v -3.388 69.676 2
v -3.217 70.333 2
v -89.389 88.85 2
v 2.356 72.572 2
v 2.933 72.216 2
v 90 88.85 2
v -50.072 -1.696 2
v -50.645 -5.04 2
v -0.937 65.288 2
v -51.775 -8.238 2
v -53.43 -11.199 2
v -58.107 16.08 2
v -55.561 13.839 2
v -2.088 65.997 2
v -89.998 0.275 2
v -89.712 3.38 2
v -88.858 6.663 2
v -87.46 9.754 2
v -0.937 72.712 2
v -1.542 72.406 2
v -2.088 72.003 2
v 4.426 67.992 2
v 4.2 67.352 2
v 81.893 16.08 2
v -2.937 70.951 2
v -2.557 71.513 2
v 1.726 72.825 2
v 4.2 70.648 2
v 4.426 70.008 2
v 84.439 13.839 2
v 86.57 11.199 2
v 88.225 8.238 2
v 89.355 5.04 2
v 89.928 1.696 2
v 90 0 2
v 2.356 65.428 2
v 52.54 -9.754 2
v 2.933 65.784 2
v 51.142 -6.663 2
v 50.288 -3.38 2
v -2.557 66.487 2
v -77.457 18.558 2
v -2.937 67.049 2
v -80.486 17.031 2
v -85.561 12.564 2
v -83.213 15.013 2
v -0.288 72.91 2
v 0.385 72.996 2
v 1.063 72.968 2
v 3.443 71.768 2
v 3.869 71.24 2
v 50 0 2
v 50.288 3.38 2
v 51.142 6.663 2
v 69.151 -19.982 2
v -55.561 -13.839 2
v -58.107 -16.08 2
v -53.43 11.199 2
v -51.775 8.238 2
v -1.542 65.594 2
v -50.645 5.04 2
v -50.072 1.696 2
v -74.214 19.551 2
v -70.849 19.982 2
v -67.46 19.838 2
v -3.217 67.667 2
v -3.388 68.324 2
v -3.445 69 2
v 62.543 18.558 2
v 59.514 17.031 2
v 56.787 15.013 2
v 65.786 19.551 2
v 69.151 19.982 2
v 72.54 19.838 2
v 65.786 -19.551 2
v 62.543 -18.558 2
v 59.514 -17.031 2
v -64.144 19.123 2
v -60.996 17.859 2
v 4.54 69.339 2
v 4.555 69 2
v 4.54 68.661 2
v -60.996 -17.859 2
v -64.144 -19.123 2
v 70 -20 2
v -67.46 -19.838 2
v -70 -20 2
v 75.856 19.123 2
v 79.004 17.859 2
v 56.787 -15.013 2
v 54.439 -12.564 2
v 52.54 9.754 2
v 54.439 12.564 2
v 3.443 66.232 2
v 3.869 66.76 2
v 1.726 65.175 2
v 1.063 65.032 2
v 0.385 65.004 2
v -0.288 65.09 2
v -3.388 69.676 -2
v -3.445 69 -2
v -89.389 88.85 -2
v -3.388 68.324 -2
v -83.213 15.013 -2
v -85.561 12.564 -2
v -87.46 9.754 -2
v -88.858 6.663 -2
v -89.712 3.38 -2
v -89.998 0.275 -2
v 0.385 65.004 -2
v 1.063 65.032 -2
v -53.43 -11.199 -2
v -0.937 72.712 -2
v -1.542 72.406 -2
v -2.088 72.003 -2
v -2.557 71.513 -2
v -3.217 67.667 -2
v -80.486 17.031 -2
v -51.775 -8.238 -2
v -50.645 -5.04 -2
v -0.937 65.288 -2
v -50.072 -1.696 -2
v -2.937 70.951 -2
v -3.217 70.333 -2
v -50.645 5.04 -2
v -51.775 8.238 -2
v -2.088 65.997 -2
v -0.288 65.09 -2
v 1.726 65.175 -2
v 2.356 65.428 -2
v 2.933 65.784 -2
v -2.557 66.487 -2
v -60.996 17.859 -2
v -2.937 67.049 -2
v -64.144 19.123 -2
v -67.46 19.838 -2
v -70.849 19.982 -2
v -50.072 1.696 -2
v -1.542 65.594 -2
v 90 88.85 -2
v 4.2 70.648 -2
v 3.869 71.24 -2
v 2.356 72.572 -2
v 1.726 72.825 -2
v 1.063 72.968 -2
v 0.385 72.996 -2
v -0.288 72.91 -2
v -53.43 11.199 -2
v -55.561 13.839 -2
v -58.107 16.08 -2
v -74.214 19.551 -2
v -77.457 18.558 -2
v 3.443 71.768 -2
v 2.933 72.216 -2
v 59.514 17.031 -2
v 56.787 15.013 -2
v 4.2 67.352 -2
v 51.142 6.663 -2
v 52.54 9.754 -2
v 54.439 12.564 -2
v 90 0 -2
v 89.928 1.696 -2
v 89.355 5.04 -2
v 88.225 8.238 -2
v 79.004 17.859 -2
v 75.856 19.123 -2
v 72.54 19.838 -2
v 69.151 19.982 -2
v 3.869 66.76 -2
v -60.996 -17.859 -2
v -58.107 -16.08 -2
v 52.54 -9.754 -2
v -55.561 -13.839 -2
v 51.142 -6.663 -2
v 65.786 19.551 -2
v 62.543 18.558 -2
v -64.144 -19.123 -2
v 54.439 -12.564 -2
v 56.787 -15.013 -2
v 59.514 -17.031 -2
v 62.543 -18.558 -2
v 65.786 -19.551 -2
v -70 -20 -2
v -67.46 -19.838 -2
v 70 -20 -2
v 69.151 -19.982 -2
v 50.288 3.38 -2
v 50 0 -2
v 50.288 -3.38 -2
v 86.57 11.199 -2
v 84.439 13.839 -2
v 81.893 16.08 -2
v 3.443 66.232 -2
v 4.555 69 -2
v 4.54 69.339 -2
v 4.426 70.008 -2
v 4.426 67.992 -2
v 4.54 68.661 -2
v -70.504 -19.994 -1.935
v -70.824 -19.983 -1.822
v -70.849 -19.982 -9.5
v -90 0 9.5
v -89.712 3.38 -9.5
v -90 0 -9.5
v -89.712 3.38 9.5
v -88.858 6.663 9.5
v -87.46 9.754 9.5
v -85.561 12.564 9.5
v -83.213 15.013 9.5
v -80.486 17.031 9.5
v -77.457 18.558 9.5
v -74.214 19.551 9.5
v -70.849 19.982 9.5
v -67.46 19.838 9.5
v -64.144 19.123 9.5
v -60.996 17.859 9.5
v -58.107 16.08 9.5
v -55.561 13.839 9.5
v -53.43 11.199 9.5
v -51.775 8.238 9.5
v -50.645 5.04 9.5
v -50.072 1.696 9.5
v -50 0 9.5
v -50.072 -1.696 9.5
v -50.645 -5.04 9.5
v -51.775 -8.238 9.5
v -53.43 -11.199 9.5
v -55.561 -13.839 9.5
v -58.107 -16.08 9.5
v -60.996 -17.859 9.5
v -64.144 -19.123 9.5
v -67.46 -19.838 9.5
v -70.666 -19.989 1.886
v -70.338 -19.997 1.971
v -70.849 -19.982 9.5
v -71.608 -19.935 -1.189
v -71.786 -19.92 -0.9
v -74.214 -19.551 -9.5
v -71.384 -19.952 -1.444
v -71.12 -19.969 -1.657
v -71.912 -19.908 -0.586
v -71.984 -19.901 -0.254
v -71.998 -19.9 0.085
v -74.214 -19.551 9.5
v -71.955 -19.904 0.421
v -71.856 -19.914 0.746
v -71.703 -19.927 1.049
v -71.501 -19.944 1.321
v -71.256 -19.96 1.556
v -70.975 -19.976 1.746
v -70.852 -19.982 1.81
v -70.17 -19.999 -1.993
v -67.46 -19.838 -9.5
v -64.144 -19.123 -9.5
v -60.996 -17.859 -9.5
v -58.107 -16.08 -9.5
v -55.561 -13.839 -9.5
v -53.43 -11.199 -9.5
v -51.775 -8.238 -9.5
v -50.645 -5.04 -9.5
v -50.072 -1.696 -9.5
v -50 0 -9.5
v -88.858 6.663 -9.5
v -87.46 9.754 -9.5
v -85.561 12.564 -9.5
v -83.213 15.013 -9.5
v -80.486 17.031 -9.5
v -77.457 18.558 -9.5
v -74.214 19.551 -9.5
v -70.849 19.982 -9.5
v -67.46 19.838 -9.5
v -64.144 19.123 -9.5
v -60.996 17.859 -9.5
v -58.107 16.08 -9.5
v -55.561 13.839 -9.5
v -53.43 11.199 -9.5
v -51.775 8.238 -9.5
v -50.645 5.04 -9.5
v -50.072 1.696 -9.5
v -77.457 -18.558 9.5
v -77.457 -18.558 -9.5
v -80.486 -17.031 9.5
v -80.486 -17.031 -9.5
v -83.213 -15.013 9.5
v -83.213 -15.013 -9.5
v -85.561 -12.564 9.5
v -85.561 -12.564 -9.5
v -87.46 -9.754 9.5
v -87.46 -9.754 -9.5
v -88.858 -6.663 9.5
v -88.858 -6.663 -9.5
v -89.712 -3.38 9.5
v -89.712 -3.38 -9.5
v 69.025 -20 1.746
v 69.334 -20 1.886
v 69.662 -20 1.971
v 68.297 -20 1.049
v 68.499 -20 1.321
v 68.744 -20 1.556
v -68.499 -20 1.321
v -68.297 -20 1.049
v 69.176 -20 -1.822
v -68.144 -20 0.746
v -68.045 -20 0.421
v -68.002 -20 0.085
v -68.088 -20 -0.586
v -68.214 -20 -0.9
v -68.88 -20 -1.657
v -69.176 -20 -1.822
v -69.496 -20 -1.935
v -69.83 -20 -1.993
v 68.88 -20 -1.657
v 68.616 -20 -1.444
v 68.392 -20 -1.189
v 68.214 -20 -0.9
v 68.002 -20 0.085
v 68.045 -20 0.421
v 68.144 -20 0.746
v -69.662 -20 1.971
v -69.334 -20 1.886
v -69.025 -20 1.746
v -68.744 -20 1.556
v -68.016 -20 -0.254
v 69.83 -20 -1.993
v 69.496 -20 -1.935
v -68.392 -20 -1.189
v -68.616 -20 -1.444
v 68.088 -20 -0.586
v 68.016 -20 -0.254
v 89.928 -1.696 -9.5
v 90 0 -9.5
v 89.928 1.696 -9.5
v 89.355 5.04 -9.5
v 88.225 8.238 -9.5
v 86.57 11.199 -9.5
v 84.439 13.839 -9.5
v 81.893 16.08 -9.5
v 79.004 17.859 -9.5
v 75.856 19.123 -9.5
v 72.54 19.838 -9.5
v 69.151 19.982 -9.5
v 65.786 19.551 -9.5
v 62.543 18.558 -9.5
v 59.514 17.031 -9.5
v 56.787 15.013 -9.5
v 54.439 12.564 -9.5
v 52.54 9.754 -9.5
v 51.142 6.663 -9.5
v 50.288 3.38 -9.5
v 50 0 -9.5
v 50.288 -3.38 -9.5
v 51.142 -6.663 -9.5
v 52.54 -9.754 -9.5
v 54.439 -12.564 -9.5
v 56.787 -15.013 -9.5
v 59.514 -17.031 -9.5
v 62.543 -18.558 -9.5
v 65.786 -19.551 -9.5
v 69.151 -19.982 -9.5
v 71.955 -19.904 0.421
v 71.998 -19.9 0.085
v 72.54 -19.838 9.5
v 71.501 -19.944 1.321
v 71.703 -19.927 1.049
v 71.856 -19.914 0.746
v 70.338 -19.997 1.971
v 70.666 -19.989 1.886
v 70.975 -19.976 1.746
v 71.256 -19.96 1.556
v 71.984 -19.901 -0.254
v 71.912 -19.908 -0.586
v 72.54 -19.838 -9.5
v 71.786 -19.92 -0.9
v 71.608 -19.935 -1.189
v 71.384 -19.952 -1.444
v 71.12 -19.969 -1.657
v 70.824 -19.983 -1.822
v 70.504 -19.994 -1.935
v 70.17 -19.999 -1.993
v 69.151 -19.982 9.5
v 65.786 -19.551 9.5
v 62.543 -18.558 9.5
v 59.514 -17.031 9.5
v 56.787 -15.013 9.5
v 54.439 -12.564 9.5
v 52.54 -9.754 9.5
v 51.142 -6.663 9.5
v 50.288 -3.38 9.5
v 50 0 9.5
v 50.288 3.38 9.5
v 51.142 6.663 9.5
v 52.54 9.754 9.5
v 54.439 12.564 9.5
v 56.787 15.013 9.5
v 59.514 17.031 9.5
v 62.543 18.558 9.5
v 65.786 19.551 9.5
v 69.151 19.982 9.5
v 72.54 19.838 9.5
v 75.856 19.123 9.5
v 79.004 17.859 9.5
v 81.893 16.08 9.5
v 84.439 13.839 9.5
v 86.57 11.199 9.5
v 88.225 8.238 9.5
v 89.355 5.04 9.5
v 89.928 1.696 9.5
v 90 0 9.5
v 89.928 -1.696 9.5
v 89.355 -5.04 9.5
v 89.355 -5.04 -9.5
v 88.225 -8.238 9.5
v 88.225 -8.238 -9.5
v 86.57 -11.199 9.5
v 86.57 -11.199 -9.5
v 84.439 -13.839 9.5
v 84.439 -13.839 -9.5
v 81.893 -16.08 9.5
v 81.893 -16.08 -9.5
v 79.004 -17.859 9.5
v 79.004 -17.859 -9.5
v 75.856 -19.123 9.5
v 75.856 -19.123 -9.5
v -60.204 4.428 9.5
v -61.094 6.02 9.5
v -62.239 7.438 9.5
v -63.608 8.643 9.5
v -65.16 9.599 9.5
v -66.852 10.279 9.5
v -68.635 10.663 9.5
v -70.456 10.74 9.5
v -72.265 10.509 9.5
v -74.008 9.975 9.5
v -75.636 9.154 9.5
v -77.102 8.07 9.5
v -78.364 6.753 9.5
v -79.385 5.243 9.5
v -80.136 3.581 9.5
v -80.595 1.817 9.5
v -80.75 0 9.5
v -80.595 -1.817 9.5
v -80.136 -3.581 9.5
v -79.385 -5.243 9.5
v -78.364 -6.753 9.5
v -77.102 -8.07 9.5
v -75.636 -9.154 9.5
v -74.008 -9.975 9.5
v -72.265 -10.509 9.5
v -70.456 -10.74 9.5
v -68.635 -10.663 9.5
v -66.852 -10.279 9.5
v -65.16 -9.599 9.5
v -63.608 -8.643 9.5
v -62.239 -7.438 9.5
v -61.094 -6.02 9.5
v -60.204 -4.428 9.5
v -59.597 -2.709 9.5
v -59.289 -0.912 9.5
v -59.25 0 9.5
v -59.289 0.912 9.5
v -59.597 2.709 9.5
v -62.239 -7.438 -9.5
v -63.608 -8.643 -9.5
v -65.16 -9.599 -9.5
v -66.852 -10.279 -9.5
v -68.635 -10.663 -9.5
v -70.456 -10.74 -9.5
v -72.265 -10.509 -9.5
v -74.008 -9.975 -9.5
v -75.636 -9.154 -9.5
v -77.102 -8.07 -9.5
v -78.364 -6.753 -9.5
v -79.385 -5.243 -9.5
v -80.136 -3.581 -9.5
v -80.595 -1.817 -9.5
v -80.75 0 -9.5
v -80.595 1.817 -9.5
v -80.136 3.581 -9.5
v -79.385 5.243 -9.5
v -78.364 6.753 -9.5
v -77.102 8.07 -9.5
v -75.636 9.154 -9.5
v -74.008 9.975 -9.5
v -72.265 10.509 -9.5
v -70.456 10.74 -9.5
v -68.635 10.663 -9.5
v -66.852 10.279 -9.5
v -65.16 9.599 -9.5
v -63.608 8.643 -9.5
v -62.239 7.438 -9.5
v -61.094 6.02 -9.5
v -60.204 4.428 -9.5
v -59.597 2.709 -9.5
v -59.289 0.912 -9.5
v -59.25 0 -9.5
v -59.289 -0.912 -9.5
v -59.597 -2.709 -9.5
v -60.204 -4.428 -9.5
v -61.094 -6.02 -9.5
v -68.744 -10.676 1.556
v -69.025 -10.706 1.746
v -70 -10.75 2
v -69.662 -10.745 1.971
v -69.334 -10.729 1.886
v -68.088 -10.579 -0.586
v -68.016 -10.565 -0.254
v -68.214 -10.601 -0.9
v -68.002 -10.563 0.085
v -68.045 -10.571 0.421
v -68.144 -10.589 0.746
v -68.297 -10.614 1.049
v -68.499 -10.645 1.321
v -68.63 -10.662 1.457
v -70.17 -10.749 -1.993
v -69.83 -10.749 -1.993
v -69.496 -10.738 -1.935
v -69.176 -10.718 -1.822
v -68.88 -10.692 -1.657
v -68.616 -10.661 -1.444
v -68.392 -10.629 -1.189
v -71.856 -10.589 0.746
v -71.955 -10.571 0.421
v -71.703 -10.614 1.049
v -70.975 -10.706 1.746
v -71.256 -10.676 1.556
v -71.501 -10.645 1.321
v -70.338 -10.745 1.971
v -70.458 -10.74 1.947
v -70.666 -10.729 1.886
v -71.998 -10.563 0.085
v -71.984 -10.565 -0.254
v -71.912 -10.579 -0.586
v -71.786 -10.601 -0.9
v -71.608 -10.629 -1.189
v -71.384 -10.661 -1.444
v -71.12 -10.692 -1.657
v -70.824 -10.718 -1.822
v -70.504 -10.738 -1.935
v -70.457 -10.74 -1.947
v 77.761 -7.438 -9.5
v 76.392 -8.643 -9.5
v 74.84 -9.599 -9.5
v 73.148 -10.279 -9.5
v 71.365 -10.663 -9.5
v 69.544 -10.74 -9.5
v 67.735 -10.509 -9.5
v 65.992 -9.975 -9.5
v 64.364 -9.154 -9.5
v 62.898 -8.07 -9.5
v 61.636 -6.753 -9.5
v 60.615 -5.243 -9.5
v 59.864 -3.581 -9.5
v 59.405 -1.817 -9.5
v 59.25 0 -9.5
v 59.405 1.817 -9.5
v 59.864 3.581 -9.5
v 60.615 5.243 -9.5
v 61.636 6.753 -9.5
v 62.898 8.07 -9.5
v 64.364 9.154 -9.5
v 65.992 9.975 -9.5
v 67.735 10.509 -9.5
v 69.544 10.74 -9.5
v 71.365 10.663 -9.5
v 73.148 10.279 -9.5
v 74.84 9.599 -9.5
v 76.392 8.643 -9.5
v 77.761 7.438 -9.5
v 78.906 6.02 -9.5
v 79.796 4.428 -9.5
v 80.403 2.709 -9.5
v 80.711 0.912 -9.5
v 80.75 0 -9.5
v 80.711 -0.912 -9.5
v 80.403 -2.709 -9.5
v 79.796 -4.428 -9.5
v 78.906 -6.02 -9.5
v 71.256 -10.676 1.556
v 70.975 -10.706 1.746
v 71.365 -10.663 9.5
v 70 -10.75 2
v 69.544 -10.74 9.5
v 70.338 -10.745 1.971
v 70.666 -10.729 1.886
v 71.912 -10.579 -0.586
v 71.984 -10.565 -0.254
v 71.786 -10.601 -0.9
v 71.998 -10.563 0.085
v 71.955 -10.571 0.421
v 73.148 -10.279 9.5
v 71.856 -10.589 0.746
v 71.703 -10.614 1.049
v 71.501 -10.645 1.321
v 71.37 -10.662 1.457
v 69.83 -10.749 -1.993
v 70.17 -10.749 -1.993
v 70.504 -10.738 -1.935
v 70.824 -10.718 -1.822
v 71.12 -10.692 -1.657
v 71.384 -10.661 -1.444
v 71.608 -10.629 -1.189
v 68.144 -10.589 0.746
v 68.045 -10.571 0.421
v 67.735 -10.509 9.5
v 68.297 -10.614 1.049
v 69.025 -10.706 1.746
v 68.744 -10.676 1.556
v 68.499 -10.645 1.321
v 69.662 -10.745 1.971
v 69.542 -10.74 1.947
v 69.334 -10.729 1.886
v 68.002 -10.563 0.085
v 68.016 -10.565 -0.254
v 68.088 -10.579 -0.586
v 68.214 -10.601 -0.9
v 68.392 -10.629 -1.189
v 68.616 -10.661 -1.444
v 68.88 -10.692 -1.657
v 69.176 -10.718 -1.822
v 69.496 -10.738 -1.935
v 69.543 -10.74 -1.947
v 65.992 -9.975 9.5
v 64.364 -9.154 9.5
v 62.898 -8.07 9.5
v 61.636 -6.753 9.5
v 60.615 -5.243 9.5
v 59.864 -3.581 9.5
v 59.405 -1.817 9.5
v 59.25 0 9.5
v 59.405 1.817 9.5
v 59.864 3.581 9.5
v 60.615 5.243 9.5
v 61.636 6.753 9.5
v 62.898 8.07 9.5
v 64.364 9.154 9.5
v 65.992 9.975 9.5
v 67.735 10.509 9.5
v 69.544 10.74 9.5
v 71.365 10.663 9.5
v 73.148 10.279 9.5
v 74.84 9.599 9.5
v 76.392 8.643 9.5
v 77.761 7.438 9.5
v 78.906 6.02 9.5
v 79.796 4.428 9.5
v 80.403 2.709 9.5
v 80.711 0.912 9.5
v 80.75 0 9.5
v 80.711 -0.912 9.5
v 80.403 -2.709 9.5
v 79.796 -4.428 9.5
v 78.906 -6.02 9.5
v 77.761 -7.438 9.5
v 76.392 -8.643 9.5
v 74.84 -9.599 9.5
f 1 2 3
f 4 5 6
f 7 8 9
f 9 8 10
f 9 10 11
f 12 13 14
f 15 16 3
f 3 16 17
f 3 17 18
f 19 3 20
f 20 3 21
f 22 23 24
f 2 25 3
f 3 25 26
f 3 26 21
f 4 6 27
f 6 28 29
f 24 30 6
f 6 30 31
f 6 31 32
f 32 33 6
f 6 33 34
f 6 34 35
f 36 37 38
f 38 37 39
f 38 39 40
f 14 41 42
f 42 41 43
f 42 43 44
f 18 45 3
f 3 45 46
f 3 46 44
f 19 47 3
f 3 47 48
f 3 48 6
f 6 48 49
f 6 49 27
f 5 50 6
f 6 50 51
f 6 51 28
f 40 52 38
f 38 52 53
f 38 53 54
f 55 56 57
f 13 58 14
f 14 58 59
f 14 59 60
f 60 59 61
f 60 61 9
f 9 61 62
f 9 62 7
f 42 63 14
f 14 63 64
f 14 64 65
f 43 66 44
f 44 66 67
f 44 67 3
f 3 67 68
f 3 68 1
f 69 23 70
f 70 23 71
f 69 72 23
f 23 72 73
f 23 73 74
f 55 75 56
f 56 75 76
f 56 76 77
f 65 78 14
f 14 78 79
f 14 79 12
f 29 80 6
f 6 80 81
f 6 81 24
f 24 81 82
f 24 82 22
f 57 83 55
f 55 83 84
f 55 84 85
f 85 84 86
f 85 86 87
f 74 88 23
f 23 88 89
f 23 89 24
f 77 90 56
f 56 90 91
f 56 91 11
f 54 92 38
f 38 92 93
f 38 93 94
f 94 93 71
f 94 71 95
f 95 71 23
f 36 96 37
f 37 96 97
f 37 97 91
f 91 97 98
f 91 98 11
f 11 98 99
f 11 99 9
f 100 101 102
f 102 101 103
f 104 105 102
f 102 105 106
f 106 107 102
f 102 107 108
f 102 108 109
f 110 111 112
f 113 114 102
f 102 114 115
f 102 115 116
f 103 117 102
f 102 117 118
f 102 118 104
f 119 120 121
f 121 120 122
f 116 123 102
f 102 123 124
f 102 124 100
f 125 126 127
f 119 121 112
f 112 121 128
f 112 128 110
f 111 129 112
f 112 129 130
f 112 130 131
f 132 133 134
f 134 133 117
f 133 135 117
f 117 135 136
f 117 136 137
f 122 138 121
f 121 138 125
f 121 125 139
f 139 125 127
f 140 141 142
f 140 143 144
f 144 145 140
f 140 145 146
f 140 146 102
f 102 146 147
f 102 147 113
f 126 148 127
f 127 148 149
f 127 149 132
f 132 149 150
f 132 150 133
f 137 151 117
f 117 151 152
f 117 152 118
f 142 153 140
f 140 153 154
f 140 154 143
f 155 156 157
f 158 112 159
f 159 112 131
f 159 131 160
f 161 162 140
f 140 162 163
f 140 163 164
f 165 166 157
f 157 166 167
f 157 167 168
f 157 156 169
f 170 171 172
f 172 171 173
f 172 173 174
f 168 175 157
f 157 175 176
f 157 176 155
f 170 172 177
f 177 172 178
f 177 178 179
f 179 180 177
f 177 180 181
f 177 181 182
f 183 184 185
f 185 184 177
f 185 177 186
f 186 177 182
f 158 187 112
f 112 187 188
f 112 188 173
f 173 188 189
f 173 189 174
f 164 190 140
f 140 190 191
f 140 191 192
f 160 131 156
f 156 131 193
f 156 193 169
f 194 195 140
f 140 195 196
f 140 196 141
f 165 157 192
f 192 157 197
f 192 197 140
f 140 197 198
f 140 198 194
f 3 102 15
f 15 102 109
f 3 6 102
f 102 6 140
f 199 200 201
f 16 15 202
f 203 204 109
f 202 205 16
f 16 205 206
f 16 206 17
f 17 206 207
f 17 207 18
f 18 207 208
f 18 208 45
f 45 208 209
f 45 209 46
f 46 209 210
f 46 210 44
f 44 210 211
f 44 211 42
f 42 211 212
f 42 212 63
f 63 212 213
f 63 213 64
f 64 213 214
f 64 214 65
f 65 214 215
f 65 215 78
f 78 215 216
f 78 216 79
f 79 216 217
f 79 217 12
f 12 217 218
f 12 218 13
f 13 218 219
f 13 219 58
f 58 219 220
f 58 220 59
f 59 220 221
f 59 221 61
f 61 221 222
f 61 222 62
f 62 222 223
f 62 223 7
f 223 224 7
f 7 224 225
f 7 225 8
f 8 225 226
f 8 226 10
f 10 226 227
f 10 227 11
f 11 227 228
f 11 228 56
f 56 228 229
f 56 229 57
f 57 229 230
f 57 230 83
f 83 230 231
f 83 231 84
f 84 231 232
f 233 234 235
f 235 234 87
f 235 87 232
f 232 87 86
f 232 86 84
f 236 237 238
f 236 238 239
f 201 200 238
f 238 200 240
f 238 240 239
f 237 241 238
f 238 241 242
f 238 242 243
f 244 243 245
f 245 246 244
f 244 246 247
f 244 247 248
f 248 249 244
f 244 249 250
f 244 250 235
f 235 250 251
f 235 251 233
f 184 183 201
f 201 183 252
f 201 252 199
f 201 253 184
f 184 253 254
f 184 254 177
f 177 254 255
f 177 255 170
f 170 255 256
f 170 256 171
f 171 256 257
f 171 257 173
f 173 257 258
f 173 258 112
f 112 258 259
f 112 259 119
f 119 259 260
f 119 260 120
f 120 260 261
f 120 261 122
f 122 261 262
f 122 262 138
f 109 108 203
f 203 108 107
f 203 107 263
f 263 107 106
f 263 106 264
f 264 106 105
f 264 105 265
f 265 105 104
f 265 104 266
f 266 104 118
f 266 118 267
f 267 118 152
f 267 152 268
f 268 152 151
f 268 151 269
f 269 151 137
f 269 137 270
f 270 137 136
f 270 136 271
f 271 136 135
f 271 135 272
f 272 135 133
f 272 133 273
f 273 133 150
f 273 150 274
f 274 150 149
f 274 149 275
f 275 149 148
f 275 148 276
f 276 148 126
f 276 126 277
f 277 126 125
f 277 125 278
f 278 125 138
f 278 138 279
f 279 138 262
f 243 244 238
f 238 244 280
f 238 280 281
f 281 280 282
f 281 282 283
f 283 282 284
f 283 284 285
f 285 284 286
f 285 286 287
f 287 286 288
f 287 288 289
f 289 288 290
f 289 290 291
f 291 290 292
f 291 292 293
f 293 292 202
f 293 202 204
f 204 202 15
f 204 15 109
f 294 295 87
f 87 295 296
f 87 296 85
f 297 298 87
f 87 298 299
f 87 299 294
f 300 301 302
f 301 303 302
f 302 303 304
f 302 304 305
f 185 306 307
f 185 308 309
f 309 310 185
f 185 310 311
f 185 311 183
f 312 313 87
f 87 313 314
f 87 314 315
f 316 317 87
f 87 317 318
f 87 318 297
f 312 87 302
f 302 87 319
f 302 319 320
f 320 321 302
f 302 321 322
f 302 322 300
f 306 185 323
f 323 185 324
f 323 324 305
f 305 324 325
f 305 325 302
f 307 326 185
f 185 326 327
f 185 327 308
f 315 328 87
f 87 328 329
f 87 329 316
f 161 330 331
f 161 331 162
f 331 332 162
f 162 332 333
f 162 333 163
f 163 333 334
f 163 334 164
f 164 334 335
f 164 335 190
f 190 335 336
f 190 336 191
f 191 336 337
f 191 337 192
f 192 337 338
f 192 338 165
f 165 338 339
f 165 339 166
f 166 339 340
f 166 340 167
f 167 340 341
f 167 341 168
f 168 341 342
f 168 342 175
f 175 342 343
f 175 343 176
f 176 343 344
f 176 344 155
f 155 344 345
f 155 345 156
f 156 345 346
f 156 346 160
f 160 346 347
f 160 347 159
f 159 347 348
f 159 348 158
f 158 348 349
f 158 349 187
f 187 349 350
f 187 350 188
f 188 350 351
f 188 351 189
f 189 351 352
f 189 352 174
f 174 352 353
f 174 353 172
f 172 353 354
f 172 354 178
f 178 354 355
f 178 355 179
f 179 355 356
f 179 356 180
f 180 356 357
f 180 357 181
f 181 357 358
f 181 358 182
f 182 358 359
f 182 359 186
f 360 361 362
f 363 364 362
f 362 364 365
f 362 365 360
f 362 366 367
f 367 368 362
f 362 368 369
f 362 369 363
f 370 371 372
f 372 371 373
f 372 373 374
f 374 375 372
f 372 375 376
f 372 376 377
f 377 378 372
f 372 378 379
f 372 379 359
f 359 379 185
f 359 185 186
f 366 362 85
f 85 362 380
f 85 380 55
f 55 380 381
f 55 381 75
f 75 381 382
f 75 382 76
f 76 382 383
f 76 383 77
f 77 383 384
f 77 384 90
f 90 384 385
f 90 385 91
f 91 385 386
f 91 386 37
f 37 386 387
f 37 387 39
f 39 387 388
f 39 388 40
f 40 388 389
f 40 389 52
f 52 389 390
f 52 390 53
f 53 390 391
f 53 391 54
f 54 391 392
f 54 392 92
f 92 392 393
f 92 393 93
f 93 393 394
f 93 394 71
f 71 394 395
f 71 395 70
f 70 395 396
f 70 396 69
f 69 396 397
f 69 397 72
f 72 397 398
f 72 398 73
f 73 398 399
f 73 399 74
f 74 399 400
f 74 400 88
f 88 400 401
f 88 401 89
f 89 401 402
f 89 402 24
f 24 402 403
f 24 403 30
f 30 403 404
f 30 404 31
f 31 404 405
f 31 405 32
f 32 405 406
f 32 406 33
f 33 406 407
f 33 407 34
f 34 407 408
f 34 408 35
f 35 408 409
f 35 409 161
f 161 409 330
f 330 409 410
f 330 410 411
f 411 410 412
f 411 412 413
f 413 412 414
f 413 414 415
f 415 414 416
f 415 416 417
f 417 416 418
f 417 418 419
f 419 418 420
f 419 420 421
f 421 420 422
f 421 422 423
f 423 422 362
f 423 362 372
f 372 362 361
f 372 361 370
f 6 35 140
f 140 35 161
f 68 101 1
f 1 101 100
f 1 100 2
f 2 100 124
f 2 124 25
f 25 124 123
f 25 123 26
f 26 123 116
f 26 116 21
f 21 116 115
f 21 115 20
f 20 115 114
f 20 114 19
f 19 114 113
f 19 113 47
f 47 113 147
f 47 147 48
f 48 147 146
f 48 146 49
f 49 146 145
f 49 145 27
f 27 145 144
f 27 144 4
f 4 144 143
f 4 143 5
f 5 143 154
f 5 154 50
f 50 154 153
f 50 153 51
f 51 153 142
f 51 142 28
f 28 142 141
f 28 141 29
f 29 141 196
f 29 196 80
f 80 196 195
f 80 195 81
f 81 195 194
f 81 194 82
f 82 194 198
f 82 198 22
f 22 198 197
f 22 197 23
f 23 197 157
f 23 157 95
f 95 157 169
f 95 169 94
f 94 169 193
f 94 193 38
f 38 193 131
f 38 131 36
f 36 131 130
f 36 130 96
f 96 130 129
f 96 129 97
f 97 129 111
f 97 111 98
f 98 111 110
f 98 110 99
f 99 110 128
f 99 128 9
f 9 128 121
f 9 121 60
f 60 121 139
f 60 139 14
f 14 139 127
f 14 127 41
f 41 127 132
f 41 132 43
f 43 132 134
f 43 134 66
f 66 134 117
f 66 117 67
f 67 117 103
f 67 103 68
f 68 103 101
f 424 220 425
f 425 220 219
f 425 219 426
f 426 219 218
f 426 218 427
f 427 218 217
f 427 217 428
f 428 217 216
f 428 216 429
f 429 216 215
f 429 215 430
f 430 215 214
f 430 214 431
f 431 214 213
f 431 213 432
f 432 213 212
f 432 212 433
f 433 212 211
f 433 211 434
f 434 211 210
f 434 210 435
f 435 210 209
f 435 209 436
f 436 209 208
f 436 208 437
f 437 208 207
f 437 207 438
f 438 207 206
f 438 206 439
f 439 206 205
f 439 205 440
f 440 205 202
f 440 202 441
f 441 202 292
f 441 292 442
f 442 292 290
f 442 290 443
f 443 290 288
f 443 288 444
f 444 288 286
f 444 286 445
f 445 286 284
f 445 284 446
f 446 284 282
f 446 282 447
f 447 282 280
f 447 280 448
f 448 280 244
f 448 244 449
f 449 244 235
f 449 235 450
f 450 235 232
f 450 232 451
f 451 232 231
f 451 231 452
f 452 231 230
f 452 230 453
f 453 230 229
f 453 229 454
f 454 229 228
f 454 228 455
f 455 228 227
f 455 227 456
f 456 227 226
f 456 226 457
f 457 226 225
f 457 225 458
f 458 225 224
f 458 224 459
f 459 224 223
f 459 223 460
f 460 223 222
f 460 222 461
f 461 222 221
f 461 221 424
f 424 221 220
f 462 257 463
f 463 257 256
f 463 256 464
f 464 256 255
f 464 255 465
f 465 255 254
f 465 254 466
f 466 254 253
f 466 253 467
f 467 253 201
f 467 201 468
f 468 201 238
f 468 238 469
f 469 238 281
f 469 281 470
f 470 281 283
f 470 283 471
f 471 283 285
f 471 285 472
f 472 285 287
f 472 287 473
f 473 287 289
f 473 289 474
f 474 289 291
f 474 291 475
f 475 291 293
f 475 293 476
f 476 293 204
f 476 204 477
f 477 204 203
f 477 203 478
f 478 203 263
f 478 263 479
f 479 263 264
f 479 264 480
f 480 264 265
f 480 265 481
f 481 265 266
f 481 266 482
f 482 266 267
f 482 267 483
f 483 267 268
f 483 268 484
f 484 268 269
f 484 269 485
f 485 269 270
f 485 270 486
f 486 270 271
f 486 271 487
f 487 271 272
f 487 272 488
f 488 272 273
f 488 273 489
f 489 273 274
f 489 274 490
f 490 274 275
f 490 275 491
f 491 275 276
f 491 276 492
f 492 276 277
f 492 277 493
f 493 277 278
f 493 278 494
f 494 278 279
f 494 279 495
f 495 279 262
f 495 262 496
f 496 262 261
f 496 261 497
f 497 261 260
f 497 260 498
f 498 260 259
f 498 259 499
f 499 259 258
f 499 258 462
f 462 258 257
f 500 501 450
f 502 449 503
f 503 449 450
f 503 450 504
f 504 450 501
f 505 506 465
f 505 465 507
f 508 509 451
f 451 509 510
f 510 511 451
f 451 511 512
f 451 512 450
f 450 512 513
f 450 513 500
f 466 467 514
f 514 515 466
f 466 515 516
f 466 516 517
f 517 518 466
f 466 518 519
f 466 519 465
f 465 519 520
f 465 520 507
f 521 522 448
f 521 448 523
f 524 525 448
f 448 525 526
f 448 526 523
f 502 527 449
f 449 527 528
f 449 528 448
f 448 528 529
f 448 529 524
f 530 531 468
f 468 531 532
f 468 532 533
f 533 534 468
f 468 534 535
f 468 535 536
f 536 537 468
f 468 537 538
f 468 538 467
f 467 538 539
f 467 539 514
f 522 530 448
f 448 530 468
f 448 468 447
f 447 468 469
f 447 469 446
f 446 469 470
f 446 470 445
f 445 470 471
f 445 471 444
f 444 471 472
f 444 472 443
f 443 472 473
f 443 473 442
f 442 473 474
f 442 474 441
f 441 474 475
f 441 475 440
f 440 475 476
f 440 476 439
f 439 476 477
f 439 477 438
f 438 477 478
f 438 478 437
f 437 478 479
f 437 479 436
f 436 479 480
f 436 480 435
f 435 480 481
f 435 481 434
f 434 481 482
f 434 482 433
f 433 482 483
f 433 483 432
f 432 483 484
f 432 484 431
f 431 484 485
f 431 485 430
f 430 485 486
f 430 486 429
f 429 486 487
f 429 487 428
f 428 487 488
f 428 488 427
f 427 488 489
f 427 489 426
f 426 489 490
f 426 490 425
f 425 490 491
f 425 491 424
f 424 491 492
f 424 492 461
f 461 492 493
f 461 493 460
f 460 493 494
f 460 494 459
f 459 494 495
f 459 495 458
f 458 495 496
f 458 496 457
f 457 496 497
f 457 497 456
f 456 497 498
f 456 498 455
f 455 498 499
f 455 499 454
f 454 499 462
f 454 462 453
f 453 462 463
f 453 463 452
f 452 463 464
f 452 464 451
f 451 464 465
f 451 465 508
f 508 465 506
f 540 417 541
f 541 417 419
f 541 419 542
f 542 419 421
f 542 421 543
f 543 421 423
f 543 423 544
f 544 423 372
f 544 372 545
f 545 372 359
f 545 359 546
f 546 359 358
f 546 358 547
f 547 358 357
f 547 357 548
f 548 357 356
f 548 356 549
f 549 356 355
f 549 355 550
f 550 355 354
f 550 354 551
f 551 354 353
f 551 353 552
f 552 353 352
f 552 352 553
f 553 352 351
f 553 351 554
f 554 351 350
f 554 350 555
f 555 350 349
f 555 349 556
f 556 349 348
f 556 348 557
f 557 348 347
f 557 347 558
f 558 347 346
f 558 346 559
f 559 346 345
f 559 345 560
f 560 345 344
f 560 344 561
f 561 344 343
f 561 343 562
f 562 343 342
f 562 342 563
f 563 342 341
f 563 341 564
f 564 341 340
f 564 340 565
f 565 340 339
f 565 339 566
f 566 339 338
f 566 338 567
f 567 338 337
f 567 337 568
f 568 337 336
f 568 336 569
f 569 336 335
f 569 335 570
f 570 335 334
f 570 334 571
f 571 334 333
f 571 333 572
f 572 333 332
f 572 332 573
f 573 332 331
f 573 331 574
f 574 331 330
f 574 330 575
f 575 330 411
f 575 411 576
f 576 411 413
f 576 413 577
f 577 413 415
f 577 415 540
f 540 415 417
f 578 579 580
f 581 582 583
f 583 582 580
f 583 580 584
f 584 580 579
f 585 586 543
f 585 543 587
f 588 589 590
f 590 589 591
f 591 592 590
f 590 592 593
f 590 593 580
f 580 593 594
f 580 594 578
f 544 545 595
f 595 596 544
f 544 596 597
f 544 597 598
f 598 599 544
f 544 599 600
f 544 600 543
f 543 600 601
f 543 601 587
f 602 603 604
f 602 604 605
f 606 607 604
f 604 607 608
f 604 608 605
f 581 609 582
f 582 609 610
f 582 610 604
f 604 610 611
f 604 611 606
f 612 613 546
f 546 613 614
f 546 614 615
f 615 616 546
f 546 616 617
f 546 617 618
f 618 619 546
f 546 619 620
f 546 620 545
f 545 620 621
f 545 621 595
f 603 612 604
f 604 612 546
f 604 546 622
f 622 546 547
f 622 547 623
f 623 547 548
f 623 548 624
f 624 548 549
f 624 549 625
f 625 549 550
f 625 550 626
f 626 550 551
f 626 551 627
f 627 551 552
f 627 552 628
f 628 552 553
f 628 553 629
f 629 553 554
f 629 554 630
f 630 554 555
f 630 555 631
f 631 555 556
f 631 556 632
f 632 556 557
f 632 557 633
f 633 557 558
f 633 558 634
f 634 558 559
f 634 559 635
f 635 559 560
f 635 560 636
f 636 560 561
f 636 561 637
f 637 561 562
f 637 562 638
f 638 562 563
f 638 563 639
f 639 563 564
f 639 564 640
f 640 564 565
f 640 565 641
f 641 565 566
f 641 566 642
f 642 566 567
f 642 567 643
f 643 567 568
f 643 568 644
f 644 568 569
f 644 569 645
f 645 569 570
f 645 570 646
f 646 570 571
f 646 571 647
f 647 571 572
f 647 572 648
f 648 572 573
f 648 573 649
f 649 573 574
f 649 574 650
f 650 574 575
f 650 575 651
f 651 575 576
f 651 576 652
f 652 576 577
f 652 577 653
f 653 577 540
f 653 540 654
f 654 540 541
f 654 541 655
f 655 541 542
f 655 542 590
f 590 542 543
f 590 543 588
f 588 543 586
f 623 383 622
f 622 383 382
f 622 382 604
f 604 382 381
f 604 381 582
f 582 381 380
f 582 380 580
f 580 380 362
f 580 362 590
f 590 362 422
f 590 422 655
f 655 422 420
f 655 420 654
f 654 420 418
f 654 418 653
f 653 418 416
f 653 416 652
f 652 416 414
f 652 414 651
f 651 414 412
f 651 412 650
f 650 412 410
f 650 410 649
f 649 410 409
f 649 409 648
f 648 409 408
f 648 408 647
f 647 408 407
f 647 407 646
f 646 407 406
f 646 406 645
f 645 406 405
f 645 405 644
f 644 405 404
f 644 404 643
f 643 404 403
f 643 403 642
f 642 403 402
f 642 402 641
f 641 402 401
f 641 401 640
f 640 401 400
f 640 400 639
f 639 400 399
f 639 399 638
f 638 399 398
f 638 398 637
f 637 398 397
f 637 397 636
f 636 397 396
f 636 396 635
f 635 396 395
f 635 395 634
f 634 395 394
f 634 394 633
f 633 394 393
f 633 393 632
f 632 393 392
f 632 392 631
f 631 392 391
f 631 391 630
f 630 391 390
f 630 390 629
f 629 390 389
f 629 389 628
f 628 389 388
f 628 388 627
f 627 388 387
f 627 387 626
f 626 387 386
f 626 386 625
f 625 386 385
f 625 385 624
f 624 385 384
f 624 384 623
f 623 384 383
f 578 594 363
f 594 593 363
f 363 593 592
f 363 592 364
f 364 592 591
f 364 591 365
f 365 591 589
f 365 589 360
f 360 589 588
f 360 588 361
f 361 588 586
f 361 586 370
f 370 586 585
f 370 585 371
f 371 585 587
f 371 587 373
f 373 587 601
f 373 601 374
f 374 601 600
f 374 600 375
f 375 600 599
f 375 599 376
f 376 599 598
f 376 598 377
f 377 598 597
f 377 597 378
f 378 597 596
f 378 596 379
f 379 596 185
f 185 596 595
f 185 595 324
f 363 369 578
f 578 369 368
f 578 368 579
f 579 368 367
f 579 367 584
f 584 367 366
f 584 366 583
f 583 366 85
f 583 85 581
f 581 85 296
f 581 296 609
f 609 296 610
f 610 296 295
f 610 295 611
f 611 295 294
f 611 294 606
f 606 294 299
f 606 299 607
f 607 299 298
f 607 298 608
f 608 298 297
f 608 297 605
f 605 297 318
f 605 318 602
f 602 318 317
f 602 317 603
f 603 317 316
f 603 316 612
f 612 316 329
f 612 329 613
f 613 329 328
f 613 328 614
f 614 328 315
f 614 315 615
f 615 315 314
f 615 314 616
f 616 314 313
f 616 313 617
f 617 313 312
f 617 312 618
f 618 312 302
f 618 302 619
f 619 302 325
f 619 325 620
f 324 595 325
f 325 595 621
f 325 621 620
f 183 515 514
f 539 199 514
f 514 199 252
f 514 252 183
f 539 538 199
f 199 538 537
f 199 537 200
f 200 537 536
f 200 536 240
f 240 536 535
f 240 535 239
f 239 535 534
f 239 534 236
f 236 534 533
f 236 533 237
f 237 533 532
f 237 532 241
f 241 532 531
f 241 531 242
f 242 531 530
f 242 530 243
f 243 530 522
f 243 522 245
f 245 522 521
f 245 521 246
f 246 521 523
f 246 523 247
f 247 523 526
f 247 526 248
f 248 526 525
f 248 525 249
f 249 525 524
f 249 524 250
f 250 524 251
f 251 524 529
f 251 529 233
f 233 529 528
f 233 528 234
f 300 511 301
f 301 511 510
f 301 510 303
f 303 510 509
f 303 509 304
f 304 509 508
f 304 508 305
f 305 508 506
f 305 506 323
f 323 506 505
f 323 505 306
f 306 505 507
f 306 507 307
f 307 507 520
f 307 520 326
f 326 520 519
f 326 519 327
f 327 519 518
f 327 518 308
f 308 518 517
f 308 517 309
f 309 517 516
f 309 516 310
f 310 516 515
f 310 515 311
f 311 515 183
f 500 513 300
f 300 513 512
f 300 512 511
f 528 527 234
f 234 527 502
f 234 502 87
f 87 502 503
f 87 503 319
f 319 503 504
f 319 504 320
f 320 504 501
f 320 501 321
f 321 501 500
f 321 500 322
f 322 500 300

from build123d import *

# Parameters (mm, degrees)
SKETCH1_R                      = 10.75
BOSS_EXTRUDE1_DEPTH            = 2
CUT_EXTRUDE1_REACH             = 4
SKETCH2_R                      = 4
CUT_EXTRUDE1_DIRECTION_2_REACH = 4
SKETCH3_R                      = 20
SKETCH3_R_2                    = 10.75
BOSS_EXTRUDE2_DEPTH            = 9.5
SKETCH6_R                      = 2
CUT_EXTRUDE2_DEPTH             = 20


with BuildPart() as part:
    # Sketch1 → Boss-Extrude1 (new body, symmetric)
    with BuildSketch(Plane.XY):
        with BuildLine():
            Line((-70, -20), (70, -20))
            ThreePointArc((70, -20), (84.142135624, -14.142135624), (90, 0))
            Line((90, 0), (90, 88.85))
            Line((90, 88.85), (-89.389486479, 88.85))
            Line((-89.389486479, 88.85), (-90, 0))
            ThreePointArc((-90, 0), (-84.142135624, -14.142135624), (-70, -20))
        make_face()
        with Locations((70, 0)):
            Circle(SKETCH1_R, mode=Mode.SUBTRACT)
        with Locations((-70, 0)):
            Circle(SKETCH1_R, mode=Mode.SUBTRACT)
    extrude(amount=BOSS_EXTRUDE1_DEPTH, both=True)

    # Cut-Extrude1: up to this face of the body (flat: up to its plane)
    cut_extrude1_end = Plane(part.part.faces().sort_by_distance((0.130461416, 36.187362992, 2))[0])
    # Sketch2 → Cut-Extrude1 (cut, up to the picked face)
    with BuildSketch(Plane.XY, mode=Mode.PRIVATE) as cut_extrude1_sk1:
        with Locations((0.554740673, 69)):
            Circle(SKETCH2_R)
    cut_extrude1_tool1 = split(extrude(cut_extrude1_sk1.sketch, amount=CUT_EXTRUDE1_REACH, mode=Mode.PRIVATE), bisect_by=cut_extrude1_end, keep=Keep.BOTH, mode=Mode.PRIVATE)
    add(cut_extrude1_tool1.solids().sort_by_distance((0.554741, 69, 0))[0], mode=Mode.SUBTRACT)

    # Cut-Extrude1 direction 2: up to this face of the body (flat: up to its plane)
    cut_extrude1_direction_2_end = Plane(part.part.faces().sort_by_distance((0.130461416, 36.187362992, -2))[0])
    # Sketch2 → Cut-Extrude1 direction 2 (cut, up to the picked face)
    with BuildSketch(Plane.XY, mode=Mode.PRIVATE) as cut_extrude1_direction_2_sk1:
        with Locations((0.554740673, 69)):
            Circle(SKETCH2_R)
    cut_extrude1_direction_2_tool1 = split(extrude(cut_extrude1_direction_2_sk1.sketch, amount=-CUT_EXTRUDE1_DIRECTION_2_REACH, mode=Mode.PRIVATE), bisect_by=cut_extrude1_direction_2_end, keep=Keep.BOTH, mode=Mode.PRIVATE)
    add(cut_extrude1_direction_2_tool1.solids().sort_by_distance((0.554741, 69, 0))[0], mode=Mode.SUBTRACT)

    # Sketch3 → Boss-Extrude2 (add, symmetric)
    with BuildSketch(Plane.XY):
        with Locations((-70, 0)):
            Circle(SKETCH3_R)
        with Locations((-70, 0)):
            Circle(SKETCH3_R_2, mode=Mode.SUBTRACT)
        with Locations((70, 0)):
            Circle(SKETCH3_R)
        with Locations((70, 0)):
            Circle(SKETCH3_R_2, mode=Mode.SUBTRACT)
    extrude(amount=BOSS_EXTRUDE2_DEPTH, both=True)

    # Sketch6 → Cut-Extrude2 (cut)
    with BuildSketch(Plane(origin=(0, 0, 0), x_dir=(1, 0, 0), z_dir=(0, 1, 0))):
        with Locations((-70, 0)):
            Circle(SKETCH6_R)
        with Locations((70, 0)):
            Circle(SKETCH6_R)
    extrude(amount=-CUT_EXTRUDE2_DEPTH, mode=Mode.SUBTRACT)


solid = part.part
